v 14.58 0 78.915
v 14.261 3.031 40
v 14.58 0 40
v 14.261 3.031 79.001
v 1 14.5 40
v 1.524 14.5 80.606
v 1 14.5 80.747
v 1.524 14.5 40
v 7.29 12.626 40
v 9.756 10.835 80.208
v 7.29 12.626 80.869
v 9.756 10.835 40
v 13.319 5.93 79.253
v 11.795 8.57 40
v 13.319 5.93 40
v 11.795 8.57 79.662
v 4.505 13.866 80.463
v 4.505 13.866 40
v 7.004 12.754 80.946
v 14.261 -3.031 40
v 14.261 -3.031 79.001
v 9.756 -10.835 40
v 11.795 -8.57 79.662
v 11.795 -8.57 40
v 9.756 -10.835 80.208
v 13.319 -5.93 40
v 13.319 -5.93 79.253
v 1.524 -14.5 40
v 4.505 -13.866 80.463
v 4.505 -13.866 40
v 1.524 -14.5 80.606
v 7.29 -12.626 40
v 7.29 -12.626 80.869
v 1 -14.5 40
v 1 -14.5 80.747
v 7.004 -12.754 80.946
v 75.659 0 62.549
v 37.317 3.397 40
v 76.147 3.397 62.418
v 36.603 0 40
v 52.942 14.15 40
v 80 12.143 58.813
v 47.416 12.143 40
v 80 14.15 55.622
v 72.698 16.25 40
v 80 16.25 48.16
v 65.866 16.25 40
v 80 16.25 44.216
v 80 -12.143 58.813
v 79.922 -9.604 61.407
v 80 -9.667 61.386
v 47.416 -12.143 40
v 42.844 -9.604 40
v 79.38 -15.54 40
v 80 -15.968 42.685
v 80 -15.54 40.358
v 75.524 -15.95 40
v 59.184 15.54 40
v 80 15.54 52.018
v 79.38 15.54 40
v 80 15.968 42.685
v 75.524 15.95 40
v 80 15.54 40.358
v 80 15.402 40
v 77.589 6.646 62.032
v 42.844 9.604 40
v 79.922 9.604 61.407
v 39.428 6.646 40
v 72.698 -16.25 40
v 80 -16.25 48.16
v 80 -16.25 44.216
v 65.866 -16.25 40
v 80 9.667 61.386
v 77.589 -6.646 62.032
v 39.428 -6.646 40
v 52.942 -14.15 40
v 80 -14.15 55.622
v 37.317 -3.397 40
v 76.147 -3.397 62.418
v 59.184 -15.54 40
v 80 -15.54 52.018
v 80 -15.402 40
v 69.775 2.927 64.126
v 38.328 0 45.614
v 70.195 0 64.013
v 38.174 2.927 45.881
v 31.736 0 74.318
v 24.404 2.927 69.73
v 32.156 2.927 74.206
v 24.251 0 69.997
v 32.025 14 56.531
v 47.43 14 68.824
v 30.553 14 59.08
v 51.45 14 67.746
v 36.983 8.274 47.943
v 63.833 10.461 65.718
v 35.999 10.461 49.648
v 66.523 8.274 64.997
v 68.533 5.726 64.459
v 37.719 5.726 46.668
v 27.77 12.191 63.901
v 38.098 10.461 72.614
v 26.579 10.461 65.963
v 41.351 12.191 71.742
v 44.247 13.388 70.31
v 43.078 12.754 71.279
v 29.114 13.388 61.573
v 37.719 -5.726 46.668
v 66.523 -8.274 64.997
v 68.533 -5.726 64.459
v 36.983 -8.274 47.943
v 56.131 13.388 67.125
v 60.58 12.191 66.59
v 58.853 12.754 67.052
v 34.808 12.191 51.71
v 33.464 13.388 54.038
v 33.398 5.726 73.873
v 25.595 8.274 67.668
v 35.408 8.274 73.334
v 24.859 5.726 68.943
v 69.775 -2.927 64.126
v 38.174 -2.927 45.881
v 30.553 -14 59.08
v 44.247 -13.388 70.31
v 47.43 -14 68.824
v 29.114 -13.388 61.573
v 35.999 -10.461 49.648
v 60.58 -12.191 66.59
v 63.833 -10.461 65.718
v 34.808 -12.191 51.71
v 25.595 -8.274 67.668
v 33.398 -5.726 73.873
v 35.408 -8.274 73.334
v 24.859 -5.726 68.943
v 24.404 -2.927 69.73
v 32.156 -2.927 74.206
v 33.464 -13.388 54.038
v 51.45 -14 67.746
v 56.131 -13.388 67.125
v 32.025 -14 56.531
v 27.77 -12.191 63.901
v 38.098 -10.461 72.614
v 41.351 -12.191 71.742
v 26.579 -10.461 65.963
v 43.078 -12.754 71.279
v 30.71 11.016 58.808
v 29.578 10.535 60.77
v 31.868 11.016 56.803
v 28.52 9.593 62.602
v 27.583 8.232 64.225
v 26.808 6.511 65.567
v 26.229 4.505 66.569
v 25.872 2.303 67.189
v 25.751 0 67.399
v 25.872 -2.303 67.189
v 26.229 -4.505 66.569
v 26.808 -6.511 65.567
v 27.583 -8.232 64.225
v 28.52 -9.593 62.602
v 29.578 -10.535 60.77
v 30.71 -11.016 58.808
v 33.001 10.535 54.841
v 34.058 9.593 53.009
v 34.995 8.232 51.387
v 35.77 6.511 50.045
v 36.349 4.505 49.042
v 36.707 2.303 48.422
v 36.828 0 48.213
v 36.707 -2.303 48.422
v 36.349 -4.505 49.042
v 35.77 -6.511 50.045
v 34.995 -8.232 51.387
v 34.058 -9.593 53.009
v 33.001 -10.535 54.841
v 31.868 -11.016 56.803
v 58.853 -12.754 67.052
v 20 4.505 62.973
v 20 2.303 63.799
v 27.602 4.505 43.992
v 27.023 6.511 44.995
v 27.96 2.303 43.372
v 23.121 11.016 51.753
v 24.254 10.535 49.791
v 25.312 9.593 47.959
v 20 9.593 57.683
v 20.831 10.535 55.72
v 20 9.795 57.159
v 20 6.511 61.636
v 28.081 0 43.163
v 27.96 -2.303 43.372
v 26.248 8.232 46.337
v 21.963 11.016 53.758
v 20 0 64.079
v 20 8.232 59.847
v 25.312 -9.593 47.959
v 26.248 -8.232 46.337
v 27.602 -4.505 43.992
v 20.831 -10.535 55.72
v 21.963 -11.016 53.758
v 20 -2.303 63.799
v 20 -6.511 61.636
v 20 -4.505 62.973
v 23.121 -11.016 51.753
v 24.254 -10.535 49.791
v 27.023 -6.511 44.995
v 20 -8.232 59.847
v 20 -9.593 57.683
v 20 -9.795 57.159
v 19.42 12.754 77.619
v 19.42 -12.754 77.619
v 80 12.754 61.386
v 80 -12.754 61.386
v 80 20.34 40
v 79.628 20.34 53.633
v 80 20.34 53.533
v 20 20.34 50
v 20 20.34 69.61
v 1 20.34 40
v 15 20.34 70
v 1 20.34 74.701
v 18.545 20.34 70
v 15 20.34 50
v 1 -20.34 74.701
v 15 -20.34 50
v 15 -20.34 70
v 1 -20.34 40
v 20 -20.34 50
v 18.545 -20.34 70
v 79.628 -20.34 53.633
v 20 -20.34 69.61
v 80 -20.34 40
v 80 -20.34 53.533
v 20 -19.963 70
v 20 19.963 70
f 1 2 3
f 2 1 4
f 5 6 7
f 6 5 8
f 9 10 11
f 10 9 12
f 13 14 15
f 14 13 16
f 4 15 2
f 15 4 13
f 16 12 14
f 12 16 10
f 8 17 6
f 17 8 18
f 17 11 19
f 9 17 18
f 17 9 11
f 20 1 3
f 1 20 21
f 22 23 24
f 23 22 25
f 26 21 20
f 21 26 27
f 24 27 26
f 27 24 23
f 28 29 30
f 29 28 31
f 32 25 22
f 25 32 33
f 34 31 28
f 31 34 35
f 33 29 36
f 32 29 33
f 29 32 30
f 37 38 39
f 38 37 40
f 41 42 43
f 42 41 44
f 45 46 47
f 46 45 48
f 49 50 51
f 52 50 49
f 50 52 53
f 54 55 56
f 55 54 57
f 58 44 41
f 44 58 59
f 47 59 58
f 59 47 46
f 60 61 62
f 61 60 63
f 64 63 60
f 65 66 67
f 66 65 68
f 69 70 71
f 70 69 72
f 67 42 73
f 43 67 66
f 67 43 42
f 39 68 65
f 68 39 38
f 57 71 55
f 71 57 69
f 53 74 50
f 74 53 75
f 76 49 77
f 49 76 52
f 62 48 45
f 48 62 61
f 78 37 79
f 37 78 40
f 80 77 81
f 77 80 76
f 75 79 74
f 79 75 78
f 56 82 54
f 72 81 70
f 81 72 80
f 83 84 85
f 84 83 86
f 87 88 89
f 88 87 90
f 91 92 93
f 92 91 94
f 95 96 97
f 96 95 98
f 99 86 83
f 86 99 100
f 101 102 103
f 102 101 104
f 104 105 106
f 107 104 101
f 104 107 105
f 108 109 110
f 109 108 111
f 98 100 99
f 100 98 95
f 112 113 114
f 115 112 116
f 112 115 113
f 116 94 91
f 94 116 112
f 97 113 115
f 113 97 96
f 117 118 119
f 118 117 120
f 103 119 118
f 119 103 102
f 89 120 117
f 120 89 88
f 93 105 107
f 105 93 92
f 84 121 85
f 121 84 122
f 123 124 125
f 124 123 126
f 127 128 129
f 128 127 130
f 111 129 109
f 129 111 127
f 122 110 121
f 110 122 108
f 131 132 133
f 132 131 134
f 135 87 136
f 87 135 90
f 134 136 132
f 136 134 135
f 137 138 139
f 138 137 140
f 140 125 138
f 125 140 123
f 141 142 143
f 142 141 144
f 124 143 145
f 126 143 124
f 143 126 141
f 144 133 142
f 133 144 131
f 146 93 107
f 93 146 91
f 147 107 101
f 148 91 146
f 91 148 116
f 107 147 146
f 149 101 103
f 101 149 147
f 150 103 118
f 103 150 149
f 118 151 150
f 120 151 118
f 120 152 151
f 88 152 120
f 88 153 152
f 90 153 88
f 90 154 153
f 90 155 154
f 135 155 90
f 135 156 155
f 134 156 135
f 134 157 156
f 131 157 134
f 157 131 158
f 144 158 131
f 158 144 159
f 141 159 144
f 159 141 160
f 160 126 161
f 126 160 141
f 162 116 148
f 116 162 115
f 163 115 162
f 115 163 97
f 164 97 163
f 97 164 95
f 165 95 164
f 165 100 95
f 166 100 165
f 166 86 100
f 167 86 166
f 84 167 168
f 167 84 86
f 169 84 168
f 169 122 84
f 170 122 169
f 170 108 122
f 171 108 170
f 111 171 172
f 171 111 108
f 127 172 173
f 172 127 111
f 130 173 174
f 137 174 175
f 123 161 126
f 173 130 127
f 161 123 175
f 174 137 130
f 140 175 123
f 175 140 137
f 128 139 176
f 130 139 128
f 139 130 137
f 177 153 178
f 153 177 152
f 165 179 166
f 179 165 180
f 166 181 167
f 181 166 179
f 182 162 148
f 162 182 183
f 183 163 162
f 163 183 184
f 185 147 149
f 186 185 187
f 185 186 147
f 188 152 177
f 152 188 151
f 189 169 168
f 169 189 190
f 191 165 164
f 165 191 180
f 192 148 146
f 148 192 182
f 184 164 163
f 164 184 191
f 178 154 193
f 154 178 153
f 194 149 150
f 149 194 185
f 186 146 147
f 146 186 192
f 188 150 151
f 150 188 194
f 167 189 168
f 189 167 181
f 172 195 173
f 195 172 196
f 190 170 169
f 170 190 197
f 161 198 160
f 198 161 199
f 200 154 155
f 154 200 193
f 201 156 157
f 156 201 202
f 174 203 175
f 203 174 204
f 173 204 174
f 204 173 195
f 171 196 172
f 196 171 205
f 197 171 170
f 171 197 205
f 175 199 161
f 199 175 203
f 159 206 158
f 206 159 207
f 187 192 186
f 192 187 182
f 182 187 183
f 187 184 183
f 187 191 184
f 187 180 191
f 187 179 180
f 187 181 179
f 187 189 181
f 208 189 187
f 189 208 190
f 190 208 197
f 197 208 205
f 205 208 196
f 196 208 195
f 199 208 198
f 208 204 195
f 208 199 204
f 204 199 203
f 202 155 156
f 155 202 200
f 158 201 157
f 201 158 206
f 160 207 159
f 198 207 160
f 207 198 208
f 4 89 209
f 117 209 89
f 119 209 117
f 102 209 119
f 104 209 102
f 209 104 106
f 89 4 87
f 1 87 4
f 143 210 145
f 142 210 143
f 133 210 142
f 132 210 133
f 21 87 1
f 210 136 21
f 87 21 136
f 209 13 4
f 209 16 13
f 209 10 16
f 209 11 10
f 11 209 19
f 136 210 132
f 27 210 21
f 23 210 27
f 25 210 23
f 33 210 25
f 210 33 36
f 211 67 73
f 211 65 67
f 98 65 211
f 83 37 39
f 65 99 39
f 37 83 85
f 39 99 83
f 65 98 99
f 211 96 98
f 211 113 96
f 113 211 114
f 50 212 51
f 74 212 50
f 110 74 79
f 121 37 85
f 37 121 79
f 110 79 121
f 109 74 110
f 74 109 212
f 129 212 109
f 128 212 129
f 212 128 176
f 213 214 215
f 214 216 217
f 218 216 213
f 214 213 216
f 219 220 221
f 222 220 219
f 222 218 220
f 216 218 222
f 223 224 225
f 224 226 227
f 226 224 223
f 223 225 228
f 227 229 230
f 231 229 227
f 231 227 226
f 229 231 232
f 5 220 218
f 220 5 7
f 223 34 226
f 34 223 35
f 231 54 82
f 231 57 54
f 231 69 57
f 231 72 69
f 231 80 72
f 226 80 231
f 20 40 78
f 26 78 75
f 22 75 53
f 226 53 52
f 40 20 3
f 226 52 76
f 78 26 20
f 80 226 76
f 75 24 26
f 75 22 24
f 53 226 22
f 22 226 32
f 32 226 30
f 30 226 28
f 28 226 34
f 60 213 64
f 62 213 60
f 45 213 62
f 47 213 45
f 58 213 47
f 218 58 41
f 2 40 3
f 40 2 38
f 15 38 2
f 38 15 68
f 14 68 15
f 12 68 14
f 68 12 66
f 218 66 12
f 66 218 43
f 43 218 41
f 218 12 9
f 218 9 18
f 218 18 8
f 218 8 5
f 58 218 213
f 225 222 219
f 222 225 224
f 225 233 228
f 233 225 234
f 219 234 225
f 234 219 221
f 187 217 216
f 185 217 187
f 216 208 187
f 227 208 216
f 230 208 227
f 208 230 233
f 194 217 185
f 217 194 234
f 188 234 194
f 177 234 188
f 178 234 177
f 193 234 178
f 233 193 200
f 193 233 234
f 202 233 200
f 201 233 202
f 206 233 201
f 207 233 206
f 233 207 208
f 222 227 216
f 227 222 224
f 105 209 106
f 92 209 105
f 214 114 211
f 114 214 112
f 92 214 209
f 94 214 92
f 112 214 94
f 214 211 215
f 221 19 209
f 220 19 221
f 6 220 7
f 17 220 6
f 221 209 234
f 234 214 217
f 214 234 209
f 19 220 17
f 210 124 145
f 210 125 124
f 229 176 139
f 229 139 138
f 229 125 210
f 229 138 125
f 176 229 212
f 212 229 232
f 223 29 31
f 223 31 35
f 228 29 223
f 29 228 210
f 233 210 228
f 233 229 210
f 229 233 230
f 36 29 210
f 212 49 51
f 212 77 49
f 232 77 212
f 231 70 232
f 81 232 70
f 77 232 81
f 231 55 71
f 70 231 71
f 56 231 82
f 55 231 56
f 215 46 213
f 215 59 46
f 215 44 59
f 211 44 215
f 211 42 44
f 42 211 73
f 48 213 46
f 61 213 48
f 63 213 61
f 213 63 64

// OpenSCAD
$fn=30;

barrel_diameter = 28 / cos(180/$fn);
barrel_height = 45.6;
barrel_extra = 11.1;
barrel_extra_diameter = barrel_diameter - (3*2); // guess

down_tube_radius = 32.5/2 / cos(180/$fn);
seat_tube_radius = 29/2/ cos(180/$fn);
seat_tube_angle = 60;

wall = 4;

difference() {

translate([-20, -29, 1]) cube([100, 58, 110]);

union() {
translate([0, 0, 0]) union() {
	translate([0, 0, -30]) cylinder(h=200, r=seat_tube_radius);
	rotate([0, seat_tube_angle, 0]) translate([0, 0, -30]) cylinder(h=200, r=down_tube_radius);
}

rotate([0, seat_tube_angle, 0]) translate([-down_tube_radius - barrel_diameter/2 - wall, 0, 56]) union() {
  cylinder(r=barrel_diameter/2, h=barrel_height);
  translate([0, 0, -barrel_extra+1]) cylinder(r=barrel_extra_diameter/2, h=barrel_extra);
}

rotate([0, seat_tube_angle, 0]) translate([8, -30, 0]) cube([60, 60, 200]);

// top
rotate([0, 15, 0]) translate([-40, -30, 80]) cube([200, 60, 60]);

// right
translate([0, down_tube_radius + wall, 0]) cube([200, 60, 120]);

// left
translate([0, -down_tube_radius - wall -60, 0]) cube([200, 60, 120]);

// front
translate([-59, -30, 0]) cube([60, 60, 120]);

//below
translate([0, -60, 0]) cube([200, 120, 40]);

//strap
translate([15, -40, 50]) cube([5, 80, 20]);

//translate([23, 0, 0]) cylinder(h=120, r=7);

translate([-10, 20, 78]) rotate([45, 15, 0]) translate([0, 0, -5]) cube([120, 20, 20]);
translate([-10, -20, 78]) rotate([45, 15, 0]) translate([0, -5, 0]) cube([120, 20, 20]);
}
}
